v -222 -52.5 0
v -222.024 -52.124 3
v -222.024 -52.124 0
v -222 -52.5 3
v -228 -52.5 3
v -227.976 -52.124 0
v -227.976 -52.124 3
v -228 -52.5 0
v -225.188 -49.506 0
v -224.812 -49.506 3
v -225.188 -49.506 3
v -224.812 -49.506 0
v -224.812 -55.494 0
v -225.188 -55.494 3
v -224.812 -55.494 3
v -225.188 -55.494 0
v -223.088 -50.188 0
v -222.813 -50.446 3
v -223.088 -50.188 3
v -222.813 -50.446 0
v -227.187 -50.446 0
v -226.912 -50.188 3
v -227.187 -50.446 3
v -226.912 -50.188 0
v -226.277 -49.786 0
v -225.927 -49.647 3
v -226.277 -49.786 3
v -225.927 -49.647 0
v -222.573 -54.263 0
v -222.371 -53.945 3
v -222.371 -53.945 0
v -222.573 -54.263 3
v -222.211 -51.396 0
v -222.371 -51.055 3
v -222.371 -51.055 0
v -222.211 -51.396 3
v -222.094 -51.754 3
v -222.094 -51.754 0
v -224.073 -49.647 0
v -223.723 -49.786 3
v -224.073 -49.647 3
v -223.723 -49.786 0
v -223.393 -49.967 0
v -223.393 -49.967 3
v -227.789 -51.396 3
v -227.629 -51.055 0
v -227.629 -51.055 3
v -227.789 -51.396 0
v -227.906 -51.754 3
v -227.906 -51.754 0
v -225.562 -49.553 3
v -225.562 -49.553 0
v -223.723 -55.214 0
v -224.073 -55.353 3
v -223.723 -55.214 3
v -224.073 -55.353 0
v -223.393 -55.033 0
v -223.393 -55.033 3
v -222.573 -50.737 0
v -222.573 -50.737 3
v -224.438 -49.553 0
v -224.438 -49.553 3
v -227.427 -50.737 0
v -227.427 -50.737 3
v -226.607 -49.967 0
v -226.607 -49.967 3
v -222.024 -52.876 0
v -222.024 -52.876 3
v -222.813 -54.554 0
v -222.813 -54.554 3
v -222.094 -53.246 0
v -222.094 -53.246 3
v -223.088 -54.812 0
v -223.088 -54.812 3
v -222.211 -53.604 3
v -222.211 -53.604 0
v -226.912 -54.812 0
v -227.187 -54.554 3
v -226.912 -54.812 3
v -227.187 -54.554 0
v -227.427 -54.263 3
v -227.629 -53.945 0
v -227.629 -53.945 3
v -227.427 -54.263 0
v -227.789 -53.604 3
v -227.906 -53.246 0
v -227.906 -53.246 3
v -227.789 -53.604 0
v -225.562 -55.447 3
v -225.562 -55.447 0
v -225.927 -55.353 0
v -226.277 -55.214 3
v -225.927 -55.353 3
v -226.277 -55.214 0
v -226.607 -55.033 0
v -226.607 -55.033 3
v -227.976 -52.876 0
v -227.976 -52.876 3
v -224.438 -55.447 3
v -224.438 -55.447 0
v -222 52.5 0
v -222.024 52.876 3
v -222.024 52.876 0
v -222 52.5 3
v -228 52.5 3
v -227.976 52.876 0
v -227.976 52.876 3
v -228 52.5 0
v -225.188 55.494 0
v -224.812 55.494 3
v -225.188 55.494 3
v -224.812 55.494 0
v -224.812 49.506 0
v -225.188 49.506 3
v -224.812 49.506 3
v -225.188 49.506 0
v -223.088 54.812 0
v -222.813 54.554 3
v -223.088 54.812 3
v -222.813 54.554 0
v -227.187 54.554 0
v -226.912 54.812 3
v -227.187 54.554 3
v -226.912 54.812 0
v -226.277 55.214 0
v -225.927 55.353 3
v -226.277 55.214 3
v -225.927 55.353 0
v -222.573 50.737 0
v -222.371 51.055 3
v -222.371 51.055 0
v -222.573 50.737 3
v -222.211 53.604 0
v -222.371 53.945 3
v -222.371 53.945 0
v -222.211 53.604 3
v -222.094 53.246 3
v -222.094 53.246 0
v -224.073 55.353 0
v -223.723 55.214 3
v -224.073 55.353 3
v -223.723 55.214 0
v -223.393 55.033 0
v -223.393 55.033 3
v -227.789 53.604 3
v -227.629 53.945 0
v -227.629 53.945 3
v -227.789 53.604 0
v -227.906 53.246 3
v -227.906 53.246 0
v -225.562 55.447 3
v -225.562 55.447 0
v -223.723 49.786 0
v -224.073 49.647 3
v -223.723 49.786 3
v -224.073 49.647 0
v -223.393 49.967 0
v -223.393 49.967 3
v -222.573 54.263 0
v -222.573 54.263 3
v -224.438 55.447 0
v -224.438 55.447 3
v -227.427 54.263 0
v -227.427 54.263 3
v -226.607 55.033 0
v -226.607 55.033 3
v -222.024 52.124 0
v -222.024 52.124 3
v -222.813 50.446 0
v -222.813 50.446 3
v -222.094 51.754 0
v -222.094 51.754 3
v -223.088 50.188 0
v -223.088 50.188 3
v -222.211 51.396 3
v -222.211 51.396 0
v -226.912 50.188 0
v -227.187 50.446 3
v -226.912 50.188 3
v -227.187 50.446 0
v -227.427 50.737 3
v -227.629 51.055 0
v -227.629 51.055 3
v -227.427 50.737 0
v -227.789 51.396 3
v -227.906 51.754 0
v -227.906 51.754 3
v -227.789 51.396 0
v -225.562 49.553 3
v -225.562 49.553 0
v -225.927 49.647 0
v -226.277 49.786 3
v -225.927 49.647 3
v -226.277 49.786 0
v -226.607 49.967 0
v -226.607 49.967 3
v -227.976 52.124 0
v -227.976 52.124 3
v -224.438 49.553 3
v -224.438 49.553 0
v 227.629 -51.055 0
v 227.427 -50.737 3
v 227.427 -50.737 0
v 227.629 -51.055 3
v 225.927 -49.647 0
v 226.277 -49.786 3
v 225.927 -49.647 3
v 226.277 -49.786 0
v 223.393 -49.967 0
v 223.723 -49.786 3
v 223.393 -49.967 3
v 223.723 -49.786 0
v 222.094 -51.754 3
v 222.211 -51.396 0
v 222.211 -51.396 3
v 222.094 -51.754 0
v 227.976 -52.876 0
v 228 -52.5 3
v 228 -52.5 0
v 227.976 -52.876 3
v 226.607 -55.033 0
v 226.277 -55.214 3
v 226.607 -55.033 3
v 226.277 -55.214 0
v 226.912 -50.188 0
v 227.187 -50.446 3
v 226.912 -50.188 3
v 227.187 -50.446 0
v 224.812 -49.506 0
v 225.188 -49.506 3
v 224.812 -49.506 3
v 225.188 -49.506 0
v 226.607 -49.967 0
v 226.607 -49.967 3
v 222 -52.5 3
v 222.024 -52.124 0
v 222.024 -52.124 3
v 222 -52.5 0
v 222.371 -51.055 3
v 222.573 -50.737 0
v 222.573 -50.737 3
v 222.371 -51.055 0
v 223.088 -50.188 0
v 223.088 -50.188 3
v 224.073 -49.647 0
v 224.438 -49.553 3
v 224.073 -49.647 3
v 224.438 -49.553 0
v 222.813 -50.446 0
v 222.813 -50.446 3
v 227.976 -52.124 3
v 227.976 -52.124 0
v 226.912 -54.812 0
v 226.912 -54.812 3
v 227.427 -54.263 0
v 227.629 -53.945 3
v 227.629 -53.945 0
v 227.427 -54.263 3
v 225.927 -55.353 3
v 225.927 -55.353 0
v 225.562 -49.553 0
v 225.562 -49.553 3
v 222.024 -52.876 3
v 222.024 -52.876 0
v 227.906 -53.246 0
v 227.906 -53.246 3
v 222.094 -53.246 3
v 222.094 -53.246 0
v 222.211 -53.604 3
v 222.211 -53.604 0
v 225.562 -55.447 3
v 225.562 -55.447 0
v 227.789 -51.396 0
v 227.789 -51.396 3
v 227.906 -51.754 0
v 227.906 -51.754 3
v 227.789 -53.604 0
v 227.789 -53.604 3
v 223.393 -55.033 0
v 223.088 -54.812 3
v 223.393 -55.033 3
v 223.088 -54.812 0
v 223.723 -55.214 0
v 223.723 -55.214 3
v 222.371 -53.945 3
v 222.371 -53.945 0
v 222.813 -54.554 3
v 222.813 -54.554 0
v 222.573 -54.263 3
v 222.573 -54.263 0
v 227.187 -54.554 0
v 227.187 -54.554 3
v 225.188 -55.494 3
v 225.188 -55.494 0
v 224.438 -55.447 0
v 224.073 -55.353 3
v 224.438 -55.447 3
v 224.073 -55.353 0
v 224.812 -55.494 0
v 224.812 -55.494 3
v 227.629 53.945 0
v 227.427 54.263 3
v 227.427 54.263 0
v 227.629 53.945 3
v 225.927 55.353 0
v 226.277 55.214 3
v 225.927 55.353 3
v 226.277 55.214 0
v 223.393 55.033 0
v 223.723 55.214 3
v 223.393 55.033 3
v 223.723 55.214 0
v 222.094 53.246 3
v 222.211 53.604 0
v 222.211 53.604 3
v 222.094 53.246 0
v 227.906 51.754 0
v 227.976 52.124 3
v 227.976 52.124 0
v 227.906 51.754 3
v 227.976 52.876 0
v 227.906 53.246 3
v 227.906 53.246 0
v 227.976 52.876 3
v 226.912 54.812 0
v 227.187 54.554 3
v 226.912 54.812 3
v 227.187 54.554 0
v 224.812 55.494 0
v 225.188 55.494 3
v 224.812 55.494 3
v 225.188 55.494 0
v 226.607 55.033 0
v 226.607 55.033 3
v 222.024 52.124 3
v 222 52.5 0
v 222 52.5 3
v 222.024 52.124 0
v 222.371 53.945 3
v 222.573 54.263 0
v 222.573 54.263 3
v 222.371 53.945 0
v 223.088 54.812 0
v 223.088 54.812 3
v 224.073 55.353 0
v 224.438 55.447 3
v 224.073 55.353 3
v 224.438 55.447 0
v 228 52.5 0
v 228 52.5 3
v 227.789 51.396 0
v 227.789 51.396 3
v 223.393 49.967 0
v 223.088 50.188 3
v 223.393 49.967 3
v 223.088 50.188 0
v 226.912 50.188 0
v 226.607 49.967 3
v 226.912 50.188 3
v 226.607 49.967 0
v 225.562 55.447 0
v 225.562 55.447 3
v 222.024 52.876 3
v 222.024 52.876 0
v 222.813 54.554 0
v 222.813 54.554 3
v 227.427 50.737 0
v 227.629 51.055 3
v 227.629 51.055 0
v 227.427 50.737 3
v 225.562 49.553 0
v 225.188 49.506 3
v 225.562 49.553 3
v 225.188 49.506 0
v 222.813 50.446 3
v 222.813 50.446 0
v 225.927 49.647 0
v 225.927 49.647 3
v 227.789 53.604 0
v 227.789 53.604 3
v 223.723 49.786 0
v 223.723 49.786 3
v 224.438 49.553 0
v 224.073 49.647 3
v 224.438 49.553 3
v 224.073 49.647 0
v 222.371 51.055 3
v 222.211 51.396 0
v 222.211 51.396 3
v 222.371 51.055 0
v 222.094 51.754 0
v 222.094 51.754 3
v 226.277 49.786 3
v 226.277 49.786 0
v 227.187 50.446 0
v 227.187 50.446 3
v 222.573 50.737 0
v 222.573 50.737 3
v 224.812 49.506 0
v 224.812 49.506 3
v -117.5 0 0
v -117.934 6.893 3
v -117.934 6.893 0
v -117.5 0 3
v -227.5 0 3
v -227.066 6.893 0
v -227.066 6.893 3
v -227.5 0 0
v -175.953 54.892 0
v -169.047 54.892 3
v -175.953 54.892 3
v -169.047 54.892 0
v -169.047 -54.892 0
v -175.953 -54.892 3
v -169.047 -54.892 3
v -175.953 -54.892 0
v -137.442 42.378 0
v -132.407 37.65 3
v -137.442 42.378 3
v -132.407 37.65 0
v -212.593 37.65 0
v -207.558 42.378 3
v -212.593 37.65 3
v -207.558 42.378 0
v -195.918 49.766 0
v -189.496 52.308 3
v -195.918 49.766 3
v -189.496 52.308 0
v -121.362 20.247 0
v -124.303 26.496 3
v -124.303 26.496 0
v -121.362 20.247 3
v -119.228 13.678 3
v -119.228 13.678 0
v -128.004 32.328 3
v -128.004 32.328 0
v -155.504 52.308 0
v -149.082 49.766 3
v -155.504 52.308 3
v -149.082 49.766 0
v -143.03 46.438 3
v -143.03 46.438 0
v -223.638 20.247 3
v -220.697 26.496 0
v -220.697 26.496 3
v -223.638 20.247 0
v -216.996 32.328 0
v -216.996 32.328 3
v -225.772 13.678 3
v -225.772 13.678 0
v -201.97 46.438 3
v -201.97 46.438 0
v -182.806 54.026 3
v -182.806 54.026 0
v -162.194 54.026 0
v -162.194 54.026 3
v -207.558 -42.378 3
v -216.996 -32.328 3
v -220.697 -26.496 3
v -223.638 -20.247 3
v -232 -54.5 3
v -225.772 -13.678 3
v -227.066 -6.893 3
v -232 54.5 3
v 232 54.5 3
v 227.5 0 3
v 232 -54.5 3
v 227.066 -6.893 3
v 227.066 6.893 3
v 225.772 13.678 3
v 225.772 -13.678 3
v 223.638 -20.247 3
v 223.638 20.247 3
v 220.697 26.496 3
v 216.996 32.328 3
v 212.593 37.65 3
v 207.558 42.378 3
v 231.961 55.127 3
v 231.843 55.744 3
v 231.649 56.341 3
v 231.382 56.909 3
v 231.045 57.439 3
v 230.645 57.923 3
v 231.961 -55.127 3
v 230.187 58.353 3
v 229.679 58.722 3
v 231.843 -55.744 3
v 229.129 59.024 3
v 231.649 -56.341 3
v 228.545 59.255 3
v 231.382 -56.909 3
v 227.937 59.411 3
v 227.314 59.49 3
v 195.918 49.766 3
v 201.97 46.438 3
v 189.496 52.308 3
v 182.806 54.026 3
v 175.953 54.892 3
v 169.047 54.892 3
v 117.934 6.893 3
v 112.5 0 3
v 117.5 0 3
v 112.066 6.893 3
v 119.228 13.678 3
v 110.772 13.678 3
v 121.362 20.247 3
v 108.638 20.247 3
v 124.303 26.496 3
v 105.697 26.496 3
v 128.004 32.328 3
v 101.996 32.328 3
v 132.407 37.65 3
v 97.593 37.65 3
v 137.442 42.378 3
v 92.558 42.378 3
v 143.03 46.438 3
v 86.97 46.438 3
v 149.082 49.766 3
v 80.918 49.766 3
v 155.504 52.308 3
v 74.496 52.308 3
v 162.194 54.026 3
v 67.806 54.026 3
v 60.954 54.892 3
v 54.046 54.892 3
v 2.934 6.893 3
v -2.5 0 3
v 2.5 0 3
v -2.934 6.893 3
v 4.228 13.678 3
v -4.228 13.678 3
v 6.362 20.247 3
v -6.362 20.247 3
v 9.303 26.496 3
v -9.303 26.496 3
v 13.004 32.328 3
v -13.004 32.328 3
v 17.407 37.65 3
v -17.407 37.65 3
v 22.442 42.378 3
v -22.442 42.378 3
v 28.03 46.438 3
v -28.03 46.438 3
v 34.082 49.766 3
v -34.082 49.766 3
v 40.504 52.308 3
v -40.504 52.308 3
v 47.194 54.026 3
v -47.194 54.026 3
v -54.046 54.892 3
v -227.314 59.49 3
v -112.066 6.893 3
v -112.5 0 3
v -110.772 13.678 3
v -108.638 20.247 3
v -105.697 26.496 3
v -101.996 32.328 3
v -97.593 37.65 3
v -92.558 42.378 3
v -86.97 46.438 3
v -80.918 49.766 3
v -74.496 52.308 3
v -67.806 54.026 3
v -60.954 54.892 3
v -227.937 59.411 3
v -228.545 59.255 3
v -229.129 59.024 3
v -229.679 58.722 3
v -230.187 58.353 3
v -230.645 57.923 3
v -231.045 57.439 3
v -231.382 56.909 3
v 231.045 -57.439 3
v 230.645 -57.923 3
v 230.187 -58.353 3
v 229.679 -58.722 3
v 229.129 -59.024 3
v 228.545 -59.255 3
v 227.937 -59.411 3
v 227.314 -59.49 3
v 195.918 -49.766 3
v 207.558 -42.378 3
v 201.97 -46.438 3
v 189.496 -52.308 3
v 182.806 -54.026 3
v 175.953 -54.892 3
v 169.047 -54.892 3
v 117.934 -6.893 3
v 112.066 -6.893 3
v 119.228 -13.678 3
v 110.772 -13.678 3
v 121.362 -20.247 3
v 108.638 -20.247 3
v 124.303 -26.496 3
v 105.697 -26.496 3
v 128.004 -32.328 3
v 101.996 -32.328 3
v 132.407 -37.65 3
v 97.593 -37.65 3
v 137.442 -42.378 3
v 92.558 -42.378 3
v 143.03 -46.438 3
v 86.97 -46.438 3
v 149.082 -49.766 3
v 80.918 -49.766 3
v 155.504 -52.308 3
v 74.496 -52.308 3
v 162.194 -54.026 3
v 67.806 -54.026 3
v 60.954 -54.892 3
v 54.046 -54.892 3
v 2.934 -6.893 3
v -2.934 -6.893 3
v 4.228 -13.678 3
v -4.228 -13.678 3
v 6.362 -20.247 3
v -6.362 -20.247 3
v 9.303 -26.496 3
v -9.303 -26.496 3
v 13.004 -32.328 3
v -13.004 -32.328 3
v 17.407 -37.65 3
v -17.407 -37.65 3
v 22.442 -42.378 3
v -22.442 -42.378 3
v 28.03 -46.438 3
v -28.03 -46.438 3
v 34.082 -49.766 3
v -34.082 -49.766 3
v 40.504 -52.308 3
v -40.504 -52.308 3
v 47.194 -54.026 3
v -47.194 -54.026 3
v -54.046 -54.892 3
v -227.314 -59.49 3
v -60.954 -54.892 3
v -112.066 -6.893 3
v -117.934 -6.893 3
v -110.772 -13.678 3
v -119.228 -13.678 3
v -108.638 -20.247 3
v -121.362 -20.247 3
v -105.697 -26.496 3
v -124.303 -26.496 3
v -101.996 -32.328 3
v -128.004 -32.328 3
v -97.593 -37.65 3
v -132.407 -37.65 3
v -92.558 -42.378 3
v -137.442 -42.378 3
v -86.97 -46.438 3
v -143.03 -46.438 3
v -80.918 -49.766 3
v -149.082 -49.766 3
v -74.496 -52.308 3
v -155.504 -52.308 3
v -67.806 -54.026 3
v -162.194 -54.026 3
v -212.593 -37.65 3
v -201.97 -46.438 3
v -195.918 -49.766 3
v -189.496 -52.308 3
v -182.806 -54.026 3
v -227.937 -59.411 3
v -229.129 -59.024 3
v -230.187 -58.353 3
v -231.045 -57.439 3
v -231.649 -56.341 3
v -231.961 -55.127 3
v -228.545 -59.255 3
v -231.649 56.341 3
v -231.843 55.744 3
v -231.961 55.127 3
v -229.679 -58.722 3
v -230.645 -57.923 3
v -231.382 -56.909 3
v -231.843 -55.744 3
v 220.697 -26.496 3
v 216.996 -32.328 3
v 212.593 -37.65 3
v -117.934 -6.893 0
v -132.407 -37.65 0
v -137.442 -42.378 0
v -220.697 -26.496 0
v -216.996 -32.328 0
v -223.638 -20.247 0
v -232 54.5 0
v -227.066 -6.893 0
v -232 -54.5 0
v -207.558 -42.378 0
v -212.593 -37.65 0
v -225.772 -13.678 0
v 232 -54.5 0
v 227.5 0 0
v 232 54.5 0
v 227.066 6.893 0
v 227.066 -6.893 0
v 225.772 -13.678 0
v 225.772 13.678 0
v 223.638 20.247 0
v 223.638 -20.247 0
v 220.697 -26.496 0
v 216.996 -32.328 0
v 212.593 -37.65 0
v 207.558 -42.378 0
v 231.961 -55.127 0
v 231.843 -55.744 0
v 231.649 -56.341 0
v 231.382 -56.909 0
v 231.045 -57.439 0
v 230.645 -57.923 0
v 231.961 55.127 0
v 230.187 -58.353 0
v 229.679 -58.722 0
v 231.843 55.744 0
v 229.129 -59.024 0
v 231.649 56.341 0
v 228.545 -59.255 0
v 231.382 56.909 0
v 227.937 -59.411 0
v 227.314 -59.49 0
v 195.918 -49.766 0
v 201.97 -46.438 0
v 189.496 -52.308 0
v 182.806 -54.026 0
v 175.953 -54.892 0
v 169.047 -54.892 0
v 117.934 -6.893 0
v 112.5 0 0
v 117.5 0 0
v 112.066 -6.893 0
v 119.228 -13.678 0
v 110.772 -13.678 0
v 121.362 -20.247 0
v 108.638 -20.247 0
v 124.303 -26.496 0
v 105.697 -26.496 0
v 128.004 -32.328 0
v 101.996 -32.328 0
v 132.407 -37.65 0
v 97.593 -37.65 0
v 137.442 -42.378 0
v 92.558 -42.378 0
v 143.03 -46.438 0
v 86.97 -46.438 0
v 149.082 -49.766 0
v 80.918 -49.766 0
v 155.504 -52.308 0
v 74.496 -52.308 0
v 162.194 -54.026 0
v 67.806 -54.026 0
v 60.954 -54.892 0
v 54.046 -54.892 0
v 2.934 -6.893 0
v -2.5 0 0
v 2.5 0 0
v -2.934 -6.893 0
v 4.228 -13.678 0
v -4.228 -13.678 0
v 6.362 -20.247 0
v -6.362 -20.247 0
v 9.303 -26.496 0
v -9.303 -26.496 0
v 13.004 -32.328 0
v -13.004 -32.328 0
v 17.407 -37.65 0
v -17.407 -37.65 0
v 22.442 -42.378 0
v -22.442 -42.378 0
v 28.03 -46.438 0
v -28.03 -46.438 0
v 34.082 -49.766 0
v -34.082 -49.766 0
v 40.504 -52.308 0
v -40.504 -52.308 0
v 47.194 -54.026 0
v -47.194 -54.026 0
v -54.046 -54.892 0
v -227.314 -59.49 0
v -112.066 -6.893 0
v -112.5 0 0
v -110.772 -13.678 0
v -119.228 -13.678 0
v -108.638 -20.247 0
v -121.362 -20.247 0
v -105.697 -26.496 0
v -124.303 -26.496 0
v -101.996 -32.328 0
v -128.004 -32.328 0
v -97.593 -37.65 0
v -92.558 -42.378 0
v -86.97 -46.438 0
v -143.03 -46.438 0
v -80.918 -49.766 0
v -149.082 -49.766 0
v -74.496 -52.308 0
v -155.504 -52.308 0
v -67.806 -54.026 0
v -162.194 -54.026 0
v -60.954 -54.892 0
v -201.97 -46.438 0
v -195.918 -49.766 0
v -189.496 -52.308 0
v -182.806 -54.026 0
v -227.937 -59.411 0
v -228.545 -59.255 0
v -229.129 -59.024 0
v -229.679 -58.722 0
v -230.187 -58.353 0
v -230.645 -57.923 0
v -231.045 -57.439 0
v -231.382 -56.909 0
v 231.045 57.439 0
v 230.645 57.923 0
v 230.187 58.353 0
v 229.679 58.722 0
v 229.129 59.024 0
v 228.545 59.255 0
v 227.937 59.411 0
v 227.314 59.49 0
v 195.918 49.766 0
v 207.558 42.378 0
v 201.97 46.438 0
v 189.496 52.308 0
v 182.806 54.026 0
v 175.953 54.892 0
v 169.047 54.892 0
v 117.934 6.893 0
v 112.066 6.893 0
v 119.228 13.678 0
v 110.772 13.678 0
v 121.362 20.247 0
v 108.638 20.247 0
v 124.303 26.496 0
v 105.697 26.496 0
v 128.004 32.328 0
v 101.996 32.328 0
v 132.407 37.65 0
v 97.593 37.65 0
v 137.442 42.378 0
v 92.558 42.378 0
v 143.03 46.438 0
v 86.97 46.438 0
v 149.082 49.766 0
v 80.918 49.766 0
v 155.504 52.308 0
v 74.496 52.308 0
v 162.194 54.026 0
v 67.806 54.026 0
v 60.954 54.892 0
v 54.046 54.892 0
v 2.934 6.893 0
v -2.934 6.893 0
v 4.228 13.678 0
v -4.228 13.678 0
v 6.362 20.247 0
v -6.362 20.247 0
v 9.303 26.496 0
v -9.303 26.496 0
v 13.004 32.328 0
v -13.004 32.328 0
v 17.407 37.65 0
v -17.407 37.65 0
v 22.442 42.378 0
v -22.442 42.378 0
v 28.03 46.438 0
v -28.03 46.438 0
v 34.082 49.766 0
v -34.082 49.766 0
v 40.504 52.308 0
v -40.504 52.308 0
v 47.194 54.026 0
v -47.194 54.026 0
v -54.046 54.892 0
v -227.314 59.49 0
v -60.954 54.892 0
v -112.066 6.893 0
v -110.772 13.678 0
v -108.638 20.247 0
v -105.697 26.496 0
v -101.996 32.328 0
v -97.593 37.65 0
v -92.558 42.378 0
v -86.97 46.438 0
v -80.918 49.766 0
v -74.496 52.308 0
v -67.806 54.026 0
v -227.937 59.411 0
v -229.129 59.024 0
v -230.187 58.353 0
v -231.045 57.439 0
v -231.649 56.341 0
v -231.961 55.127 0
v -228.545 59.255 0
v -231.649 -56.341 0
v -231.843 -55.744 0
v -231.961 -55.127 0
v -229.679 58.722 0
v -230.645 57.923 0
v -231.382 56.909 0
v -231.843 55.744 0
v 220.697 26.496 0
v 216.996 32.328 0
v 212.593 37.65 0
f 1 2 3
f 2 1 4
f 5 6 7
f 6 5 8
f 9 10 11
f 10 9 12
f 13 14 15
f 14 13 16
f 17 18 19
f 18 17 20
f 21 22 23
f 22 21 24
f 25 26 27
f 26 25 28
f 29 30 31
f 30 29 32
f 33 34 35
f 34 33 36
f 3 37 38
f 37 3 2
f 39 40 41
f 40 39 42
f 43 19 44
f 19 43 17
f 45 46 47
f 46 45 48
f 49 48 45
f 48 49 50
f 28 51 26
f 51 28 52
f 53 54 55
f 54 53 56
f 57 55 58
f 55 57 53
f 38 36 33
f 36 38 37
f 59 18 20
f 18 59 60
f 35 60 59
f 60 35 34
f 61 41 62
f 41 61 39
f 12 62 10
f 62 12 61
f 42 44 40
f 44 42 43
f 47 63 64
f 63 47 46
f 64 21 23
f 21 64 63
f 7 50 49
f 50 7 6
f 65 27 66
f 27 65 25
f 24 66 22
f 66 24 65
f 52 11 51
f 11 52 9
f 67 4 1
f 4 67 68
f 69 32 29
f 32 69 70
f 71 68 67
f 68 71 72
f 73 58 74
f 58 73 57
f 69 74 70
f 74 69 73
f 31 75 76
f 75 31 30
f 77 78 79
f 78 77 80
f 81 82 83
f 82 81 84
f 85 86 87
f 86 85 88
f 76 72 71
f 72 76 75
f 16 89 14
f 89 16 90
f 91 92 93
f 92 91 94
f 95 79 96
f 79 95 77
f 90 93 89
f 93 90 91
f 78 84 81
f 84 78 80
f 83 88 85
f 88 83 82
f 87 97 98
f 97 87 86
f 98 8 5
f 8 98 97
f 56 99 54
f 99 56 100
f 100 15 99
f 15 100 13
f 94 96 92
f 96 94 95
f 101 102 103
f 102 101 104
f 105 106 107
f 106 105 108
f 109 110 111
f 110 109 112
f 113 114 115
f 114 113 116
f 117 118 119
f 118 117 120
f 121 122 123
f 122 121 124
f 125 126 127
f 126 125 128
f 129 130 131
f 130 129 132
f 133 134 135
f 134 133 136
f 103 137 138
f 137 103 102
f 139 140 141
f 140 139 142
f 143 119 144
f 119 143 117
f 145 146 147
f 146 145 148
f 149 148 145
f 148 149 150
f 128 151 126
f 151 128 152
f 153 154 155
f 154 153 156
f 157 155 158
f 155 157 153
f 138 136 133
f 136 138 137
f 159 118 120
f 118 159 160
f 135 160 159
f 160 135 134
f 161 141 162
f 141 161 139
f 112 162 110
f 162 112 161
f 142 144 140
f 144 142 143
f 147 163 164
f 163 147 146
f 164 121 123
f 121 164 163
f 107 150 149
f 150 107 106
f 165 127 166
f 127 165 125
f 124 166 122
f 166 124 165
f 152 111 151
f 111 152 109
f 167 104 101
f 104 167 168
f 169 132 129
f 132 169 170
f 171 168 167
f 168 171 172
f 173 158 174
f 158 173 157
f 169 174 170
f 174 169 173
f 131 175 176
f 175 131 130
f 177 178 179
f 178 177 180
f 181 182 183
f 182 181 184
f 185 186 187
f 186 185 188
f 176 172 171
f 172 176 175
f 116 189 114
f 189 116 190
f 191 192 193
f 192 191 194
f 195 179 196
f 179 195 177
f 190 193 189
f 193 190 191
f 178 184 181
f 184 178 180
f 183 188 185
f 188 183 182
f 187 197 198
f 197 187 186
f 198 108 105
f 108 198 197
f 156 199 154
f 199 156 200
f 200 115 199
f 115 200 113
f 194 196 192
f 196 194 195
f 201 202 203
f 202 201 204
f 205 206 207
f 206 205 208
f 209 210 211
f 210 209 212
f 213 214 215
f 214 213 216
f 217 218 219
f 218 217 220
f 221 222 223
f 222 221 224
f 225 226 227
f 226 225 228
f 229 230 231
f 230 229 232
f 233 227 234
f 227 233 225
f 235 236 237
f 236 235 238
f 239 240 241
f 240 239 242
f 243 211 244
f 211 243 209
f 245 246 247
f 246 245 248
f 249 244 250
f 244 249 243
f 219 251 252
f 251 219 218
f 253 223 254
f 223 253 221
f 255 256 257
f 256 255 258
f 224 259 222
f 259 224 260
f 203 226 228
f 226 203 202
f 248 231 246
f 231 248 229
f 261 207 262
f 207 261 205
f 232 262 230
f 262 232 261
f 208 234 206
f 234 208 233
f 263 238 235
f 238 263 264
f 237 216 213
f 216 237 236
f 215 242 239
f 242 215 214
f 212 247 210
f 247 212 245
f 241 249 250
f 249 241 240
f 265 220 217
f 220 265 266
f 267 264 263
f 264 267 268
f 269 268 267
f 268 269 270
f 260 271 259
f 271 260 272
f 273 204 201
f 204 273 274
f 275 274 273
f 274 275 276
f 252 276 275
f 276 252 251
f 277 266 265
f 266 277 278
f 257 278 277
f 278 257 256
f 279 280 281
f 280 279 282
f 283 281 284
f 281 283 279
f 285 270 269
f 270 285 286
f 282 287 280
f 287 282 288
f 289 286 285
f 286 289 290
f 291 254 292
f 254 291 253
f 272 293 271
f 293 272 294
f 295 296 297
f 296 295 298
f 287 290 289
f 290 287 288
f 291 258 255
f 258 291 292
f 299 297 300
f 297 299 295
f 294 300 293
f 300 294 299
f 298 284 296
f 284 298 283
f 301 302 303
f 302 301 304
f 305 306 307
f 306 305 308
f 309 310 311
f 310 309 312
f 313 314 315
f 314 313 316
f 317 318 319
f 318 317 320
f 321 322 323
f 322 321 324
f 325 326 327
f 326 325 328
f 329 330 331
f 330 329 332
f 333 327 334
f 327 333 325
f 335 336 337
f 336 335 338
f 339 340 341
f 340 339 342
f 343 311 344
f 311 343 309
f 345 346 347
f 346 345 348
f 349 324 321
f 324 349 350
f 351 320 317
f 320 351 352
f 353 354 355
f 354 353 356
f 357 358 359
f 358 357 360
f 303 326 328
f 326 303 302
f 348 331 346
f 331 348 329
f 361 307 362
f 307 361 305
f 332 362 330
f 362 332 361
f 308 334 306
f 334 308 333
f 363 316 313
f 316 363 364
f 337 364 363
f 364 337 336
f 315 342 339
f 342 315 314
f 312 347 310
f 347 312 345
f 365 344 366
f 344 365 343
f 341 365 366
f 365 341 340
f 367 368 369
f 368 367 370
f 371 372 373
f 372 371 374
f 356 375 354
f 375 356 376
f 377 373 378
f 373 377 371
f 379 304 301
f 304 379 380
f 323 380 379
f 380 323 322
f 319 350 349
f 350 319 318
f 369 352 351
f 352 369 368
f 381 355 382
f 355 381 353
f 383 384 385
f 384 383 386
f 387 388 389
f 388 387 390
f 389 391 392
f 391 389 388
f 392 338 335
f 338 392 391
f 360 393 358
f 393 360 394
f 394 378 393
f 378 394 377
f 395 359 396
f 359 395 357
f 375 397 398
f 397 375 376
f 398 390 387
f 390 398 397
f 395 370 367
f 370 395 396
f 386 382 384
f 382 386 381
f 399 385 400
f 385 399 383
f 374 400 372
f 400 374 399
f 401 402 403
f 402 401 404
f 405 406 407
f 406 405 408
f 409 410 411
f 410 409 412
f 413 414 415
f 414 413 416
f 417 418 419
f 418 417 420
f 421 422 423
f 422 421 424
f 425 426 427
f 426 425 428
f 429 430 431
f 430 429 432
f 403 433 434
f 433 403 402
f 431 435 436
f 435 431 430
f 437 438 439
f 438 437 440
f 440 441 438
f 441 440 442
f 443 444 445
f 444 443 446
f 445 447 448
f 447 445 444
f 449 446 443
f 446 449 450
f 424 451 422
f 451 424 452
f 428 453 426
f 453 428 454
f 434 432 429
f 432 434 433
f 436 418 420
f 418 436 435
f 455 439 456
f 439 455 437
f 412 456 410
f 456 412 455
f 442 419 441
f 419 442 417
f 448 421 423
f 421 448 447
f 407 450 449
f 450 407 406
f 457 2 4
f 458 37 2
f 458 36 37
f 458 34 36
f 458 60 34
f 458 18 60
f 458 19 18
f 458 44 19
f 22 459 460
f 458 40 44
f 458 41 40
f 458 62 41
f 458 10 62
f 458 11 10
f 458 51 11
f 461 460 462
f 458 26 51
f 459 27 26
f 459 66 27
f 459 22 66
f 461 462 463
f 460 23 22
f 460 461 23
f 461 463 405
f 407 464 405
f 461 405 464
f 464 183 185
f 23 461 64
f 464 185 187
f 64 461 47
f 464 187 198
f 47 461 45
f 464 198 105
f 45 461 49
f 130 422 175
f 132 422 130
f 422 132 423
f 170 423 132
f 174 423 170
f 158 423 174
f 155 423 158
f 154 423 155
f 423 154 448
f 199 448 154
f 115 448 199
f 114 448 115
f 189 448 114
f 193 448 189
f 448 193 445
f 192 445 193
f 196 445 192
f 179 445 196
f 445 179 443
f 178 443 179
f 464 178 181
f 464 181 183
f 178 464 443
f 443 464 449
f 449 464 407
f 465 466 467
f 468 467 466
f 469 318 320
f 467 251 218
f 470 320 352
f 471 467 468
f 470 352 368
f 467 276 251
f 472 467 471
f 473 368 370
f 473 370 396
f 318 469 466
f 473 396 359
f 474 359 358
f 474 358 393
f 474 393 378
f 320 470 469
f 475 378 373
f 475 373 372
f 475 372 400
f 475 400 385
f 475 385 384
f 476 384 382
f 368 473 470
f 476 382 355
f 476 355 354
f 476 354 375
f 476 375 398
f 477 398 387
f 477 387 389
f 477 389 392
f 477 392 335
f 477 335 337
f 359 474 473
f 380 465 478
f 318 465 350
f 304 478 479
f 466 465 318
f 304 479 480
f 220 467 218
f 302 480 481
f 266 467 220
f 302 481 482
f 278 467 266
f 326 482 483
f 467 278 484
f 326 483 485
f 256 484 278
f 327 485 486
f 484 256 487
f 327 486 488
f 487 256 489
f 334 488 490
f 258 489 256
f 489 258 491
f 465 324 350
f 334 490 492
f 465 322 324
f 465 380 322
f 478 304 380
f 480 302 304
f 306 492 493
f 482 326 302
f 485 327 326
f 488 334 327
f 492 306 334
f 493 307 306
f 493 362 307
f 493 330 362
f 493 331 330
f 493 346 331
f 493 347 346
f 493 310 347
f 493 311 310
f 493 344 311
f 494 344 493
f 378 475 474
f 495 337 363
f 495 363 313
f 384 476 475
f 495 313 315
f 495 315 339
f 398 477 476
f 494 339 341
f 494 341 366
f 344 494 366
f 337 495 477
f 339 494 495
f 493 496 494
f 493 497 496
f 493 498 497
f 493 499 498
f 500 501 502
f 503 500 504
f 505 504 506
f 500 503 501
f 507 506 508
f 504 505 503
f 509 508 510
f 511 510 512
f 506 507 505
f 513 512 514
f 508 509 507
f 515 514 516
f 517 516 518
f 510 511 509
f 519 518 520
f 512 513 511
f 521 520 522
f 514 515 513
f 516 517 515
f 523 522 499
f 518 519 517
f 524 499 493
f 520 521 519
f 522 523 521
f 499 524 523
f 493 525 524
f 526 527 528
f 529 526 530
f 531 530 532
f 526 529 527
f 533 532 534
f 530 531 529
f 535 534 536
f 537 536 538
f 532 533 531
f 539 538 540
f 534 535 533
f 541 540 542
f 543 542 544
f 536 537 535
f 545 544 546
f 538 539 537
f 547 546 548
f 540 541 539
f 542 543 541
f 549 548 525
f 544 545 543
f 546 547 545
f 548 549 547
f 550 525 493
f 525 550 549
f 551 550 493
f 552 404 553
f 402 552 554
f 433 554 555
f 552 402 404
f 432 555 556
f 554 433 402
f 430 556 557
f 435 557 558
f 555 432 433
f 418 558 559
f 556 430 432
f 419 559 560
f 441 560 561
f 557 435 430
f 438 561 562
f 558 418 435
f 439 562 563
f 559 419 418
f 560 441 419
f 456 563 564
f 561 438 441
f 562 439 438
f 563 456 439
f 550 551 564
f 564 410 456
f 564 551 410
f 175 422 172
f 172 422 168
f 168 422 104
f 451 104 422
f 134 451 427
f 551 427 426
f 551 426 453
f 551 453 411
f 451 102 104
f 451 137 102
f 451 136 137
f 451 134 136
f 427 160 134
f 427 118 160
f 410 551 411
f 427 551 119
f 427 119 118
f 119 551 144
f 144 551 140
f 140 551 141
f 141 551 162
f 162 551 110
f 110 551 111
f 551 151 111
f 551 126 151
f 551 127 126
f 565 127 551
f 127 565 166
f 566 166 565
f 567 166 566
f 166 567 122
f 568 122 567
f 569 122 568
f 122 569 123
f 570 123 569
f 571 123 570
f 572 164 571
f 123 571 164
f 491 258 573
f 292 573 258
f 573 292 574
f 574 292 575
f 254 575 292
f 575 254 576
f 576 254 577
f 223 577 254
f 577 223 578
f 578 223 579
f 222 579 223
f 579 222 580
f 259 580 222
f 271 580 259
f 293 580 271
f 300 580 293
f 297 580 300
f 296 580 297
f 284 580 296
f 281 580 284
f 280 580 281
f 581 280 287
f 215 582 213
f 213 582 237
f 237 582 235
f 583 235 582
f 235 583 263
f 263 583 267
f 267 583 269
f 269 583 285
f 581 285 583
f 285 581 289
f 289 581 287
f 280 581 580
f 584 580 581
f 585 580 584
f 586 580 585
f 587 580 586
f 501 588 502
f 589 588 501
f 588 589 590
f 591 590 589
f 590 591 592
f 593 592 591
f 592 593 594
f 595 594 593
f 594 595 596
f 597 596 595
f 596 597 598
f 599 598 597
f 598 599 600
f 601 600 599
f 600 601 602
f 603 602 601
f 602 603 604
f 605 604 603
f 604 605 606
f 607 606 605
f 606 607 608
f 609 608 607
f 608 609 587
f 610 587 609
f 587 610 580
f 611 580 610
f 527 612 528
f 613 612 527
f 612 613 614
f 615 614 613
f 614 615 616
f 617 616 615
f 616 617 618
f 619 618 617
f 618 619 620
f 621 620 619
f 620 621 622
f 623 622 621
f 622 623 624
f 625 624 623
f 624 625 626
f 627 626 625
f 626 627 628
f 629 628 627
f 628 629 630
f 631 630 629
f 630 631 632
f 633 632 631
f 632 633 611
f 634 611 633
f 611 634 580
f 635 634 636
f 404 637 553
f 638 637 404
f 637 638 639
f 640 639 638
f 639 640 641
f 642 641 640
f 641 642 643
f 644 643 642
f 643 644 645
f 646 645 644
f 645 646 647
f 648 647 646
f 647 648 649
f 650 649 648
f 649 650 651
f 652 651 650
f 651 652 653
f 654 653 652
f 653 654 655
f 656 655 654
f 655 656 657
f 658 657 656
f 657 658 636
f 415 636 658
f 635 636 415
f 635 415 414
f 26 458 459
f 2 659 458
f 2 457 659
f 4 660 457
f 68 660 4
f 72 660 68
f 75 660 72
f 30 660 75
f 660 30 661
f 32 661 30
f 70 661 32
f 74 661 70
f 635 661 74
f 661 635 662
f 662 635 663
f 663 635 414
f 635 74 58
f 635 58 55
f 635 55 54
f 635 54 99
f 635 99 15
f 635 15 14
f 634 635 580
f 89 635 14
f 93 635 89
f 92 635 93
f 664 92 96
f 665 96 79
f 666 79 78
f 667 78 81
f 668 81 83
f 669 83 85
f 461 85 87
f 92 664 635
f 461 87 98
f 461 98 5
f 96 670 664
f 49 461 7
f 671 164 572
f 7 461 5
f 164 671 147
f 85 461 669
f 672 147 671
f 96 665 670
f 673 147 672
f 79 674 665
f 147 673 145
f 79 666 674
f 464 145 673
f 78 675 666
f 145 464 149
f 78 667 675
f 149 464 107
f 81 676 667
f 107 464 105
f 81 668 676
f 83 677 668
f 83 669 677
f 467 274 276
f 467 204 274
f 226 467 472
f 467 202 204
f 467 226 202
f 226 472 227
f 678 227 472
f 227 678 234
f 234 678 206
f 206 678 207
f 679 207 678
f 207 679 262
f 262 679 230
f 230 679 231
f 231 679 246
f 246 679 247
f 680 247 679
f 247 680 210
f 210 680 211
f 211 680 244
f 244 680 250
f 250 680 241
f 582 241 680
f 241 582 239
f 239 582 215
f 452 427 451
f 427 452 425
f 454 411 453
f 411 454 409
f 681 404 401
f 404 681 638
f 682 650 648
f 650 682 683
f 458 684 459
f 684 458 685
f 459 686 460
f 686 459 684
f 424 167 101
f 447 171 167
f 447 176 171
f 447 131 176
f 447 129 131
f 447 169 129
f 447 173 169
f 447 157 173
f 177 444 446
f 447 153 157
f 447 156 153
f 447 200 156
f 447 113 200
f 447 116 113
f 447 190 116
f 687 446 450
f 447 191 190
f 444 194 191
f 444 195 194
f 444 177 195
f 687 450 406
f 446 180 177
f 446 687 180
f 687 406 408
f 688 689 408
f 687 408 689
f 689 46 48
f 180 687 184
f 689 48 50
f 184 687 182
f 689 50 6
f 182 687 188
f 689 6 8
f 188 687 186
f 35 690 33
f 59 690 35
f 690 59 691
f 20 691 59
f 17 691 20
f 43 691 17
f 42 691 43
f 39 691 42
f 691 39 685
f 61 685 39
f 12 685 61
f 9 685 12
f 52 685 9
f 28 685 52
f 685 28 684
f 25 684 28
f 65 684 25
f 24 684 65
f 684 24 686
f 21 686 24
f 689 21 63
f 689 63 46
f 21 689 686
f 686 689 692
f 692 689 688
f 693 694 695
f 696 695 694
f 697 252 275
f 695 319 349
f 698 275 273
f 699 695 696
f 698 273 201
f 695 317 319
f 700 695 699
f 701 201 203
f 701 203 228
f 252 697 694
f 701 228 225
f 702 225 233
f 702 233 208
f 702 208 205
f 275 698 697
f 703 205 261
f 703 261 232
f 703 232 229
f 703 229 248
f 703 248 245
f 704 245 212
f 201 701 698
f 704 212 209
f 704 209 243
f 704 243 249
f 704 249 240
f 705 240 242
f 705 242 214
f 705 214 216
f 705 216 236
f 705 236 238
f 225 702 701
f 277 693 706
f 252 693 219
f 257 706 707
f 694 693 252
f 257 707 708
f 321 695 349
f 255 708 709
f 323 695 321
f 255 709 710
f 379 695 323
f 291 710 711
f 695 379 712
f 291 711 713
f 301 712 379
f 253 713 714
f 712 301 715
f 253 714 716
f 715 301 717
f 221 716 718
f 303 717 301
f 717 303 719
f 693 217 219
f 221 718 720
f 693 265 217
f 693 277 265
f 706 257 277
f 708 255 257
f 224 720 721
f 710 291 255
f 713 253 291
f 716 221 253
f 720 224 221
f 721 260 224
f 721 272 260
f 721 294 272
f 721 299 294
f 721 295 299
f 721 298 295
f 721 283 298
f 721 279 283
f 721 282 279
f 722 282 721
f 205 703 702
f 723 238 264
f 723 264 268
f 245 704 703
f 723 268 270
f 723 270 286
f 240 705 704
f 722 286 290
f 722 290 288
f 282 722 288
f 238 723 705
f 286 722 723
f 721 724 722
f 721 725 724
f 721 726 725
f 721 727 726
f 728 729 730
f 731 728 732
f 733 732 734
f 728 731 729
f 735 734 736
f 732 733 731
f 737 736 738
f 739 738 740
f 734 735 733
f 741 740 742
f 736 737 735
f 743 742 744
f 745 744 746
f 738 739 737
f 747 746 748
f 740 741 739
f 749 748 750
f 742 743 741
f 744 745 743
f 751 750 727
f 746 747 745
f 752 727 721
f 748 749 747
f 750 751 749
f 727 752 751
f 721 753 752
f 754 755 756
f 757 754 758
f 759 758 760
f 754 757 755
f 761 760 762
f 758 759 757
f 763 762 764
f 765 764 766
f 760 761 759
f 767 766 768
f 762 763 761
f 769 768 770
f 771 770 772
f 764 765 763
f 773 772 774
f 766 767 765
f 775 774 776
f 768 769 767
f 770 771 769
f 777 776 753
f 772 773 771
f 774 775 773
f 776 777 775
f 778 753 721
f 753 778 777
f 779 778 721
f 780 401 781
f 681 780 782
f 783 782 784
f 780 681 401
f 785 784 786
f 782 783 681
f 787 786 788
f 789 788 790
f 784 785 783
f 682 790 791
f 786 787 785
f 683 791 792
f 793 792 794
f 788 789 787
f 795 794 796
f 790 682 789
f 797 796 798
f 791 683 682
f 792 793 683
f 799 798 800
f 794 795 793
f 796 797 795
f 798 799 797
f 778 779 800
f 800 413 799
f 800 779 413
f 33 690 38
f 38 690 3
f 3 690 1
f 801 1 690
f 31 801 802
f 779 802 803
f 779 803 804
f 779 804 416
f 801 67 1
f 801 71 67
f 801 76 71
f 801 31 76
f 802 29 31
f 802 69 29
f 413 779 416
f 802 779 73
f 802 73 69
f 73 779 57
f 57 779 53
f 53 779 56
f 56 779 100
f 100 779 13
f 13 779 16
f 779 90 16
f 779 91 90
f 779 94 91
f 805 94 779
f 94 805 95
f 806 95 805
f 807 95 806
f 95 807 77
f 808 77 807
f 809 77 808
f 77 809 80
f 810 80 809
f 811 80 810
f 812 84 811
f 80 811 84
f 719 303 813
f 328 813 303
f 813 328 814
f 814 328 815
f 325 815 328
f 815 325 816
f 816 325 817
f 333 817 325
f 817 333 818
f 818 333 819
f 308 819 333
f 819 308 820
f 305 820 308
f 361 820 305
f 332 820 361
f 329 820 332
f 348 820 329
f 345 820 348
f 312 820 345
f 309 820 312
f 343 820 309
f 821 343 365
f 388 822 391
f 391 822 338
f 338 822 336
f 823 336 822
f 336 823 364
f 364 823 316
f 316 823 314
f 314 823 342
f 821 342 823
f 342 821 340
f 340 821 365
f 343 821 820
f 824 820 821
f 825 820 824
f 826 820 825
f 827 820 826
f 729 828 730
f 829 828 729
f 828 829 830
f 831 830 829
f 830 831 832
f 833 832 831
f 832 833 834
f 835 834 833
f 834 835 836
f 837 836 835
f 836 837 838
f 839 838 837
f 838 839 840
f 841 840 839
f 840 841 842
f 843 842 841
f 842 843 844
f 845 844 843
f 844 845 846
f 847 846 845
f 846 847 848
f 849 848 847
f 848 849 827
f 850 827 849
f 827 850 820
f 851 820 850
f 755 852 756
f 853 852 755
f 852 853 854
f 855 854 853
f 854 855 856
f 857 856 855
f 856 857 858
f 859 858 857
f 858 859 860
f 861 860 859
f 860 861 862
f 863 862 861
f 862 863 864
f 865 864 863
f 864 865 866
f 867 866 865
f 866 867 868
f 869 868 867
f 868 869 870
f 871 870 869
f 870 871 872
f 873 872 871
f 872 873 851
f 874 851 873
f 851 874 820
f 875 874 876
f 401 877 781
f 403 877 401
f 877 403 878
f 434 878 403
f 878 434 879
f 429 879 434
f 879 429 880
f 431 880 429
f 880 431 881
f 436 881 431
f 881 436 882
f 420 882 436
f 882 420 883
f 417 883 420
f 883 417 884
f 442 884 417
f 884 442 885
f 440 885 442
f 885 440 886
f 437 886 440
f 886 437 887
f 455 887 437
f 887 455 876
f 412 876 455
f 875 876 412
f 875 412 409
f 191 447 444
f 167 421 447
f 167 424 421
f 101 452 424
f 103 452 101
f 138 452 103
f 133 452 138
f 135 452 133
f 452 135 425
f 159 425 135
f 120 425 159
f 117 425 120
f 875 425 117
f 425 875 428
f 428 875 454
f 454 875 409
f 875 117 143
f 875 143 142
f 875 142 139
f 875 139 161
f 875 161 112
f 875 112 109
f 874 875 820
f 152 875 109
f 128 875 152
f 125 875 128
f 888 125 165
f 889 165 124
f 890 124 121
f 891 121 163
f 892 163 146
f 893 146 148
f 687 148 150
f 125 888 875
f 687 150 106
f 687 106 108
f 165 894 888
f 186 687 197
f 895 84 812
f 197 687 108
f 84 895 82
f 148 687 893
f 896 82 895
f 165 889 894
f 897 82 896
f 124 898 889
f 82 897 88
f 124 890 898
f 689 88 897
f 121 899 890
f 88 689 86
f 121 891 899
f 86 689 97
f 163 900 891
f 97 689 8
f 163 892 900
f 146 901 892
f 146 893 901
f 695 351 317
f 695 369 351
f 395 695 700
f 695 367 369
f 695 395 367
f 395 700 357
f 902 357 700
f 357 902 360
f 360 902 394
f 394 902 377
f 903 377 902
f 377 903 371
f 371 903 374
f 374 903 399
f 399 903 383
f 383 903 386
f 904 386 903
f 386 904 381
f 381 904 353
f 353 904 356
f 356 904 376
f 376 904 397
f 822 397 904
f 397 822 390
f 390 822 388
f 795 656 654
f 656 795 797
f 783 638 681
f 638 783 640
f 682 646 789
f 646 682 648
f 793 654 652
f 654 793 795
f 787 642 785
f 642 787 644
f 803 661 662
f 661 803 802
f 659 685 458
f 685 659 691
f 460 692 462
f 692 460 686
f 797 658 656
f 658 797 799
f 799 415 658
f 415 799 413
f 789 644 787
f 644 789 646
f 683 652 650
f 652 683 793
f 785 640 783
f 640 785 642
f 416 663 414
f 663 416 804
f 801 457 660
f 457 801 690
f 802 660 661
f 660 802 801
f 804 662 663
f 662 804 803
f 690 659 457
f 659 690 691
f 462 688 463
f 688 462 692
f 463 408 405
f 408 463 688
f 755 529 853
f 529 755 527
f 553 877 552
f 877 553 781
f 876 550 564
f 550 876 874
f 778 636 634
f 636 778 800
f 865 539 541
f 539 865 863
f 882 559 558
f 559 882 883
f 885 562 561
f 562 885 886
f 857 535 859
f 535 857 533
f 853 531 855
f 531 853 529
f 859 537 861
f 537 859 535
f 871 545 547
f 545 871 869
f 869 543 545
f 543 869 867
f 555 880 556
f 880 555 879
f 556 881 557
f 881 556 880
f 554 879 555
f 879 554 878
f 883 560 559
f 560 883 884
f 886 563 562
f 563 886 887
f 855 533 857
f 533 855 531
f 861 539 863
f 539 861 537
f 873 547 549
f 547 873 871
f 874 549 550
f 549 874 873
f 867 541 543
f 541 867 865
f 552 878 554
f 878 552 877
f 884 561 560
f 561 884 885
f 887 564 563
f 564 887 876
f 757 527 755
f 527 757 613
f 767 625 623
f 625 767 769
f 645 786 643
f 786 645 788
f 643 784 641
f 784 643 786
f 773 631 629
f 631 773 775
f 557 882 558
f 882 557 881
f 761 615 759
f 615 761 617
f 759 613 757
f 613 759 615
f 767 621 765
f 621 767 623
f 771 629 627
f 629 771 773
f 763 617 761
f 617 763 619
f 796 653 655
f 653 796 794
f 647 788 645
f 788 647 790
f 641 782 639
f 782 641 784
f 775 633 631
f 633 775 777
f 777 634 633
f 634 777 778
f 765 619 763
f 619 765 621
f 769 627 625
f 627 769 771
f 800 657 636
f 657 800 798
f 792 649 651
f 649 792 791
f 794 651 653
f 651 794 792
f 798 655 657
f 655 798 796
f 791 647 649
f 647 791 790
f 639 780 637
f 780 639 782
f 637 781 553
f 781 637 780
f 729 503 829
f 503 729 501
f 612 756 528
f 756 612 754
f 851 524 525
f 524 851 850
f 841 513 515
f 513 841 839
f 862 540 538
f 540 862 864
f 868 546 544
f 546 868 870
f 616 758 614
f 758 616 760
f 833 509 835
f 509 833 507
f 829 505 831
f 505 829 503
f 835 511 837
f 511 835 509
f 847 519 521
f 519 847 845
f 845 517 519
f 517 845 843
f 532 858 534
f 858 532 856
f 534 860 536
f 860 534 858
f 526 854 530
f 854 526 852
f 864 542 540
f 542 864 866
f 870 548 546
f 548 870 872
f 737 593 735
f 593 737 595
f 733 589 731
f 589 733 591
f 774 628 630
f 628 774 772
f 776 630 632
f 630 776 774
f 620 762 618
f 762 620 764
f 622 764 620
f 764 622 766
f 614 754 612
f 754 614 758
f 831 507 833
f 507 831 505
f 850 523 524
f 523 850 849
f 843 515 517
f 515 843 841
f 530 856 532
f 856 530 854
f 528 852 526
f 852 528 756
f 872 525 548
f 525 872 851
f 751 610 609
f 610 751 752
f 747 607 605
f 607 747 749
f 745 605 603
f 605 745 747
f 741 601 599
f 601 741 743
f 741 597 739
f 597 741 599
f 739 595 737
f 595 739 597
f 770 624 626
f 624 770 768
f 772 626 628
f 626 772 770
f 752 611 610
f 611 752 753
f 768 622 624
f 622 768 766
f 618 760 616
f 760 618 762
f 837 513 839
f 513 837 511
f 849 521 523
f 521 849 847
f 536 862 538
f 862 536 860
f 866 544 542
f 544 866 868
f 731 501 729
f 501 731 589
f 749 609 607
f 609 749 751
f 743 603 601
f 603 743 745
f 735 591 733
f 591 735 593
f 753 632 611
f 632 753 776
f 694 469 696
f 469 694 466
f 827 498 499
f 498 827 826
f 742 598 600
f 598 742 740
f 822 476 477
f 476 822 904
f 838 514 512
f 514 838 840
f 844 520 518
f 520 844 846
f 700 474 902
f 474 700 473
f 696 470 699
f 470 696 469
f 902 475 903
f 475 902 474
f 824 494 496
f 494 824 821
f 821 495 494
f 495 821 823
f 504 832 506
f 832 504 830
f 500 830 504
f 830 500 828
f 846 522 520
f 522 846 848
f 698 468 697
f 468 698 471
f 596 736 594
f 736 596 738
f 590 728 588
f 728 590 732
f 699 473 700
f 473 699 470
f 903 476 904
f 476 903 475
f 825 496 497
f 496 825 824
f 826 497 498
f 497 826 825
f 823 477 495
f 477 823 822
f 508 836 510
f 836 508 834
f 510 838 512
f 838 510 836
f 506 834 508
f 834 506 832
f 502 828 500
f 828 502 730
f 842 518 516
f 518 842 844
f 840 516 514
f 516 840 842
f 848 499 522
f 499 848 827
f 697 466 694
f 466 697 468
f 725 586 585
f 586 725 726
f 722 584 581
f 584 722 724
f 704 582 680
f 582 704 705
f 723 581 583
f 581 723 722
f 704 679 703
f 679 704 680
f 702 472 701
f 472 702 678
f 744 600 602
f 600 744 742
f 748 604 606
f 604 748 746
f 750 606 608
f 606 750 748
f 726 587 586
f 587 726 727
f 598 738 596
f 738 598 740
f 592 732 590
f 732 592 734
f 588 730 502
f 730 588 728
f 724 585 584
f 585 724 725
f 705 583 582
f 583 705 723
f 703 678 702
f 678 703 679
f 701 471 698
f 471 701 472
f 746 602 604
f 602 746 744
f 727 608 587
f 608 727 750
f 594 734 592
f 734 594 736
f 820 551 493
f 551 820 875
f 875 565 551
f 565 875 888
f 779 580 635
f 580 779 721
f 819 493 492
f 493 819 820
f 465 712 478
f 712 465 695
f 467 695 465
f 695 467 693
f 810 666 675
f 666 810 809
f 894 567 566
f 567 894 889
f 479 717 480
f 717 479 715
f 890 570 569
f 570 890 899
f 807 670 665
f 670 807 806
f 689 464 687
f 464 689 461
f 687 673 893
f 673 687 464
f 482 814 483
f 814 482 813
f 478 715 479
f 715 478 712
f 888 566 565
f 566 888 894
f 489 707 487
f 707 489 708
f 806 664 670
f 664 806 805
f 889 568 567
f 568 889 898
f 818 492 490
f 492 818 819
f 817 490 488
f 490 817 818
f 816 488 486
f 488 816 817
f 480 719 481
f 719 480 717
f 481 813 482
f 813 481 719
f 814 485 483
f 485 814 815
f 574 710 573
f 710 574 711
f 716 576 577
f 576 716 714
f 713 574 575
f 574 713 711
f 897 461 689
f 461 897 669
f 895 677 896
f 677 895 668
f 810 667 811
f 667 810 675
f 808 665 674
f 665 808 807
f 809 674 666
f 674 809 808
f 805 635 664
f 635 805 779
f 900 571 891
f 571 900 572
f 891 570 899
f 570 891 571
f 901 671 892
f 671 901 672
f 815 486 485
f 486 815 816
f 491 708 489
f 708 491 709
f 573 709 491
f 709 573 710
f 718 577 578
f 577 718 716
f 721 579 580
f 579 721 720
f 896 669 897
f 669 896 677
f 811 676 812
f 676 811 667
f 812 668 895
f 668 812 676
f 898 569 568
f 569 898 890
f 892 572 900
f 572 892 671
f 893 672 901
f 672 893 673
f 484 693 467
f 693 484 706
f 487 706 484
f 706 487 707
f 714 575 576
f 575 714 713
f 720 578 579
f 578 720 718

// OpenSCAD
$fn = 50;


difference() {
	union() {
		hull() {
			translate(v = [-227.0000000000, 54.5000000000, 0]) {
				cylinder(h = 3, r = 5);
			}
			translate(v = [227.0000000000, 54.5000000000, 0]) {
				cylinder(h = 3, r = 5);
			}
			translate(v = [-227.0000000000, -54.5000000000, 0]) {
				cylinder(h = 3, r = 5);
			}
			translate(v = [227.0000000000, -54.5000000000, 0]) {
				cylinder(h = 3, r = 5);
			}
		}
	}
	union() {
		#translate(v = [-225.0000000000, -52.5000000000, -100.0000000000]) {
			cylinder(h = 200, r = 3.0000000000);
		}
		#translate(v = [-225.0000000000, 52.5000000000, -100.0000000000]) {
			cylinder(h = 200, r = 3.0000000000);
		}
		#translate(v = [225.0000000000, -52.5000000000, -100.0000000000]) {
			cylinder(h = 200, r = 3.0000000000);
		}
		#translate(v = [225.0000000000, 52.5000000000, -100.0000000000]) {
			cylinder(h = 200, r = 3.0000000000);
		}
		#translate(v = [-172.5000000000, 0, 0]) {
			cylinder(h = 3, r = 55.0000000000);
		}
		#translate(v = [-57.5000000000, 0, 0]) {
			cylinder(h = 3, r = 55.0000000000);
		}
		#translate(v = [57.5000000000, 0, 0]) {
			cylinder(h = 3, r = 55.0000000000);
		}
		#translate(v = [172.5000000000, 0, 0]) {
			cylinder(h = 3, r = 55.0000000000);
		}
	}
}
